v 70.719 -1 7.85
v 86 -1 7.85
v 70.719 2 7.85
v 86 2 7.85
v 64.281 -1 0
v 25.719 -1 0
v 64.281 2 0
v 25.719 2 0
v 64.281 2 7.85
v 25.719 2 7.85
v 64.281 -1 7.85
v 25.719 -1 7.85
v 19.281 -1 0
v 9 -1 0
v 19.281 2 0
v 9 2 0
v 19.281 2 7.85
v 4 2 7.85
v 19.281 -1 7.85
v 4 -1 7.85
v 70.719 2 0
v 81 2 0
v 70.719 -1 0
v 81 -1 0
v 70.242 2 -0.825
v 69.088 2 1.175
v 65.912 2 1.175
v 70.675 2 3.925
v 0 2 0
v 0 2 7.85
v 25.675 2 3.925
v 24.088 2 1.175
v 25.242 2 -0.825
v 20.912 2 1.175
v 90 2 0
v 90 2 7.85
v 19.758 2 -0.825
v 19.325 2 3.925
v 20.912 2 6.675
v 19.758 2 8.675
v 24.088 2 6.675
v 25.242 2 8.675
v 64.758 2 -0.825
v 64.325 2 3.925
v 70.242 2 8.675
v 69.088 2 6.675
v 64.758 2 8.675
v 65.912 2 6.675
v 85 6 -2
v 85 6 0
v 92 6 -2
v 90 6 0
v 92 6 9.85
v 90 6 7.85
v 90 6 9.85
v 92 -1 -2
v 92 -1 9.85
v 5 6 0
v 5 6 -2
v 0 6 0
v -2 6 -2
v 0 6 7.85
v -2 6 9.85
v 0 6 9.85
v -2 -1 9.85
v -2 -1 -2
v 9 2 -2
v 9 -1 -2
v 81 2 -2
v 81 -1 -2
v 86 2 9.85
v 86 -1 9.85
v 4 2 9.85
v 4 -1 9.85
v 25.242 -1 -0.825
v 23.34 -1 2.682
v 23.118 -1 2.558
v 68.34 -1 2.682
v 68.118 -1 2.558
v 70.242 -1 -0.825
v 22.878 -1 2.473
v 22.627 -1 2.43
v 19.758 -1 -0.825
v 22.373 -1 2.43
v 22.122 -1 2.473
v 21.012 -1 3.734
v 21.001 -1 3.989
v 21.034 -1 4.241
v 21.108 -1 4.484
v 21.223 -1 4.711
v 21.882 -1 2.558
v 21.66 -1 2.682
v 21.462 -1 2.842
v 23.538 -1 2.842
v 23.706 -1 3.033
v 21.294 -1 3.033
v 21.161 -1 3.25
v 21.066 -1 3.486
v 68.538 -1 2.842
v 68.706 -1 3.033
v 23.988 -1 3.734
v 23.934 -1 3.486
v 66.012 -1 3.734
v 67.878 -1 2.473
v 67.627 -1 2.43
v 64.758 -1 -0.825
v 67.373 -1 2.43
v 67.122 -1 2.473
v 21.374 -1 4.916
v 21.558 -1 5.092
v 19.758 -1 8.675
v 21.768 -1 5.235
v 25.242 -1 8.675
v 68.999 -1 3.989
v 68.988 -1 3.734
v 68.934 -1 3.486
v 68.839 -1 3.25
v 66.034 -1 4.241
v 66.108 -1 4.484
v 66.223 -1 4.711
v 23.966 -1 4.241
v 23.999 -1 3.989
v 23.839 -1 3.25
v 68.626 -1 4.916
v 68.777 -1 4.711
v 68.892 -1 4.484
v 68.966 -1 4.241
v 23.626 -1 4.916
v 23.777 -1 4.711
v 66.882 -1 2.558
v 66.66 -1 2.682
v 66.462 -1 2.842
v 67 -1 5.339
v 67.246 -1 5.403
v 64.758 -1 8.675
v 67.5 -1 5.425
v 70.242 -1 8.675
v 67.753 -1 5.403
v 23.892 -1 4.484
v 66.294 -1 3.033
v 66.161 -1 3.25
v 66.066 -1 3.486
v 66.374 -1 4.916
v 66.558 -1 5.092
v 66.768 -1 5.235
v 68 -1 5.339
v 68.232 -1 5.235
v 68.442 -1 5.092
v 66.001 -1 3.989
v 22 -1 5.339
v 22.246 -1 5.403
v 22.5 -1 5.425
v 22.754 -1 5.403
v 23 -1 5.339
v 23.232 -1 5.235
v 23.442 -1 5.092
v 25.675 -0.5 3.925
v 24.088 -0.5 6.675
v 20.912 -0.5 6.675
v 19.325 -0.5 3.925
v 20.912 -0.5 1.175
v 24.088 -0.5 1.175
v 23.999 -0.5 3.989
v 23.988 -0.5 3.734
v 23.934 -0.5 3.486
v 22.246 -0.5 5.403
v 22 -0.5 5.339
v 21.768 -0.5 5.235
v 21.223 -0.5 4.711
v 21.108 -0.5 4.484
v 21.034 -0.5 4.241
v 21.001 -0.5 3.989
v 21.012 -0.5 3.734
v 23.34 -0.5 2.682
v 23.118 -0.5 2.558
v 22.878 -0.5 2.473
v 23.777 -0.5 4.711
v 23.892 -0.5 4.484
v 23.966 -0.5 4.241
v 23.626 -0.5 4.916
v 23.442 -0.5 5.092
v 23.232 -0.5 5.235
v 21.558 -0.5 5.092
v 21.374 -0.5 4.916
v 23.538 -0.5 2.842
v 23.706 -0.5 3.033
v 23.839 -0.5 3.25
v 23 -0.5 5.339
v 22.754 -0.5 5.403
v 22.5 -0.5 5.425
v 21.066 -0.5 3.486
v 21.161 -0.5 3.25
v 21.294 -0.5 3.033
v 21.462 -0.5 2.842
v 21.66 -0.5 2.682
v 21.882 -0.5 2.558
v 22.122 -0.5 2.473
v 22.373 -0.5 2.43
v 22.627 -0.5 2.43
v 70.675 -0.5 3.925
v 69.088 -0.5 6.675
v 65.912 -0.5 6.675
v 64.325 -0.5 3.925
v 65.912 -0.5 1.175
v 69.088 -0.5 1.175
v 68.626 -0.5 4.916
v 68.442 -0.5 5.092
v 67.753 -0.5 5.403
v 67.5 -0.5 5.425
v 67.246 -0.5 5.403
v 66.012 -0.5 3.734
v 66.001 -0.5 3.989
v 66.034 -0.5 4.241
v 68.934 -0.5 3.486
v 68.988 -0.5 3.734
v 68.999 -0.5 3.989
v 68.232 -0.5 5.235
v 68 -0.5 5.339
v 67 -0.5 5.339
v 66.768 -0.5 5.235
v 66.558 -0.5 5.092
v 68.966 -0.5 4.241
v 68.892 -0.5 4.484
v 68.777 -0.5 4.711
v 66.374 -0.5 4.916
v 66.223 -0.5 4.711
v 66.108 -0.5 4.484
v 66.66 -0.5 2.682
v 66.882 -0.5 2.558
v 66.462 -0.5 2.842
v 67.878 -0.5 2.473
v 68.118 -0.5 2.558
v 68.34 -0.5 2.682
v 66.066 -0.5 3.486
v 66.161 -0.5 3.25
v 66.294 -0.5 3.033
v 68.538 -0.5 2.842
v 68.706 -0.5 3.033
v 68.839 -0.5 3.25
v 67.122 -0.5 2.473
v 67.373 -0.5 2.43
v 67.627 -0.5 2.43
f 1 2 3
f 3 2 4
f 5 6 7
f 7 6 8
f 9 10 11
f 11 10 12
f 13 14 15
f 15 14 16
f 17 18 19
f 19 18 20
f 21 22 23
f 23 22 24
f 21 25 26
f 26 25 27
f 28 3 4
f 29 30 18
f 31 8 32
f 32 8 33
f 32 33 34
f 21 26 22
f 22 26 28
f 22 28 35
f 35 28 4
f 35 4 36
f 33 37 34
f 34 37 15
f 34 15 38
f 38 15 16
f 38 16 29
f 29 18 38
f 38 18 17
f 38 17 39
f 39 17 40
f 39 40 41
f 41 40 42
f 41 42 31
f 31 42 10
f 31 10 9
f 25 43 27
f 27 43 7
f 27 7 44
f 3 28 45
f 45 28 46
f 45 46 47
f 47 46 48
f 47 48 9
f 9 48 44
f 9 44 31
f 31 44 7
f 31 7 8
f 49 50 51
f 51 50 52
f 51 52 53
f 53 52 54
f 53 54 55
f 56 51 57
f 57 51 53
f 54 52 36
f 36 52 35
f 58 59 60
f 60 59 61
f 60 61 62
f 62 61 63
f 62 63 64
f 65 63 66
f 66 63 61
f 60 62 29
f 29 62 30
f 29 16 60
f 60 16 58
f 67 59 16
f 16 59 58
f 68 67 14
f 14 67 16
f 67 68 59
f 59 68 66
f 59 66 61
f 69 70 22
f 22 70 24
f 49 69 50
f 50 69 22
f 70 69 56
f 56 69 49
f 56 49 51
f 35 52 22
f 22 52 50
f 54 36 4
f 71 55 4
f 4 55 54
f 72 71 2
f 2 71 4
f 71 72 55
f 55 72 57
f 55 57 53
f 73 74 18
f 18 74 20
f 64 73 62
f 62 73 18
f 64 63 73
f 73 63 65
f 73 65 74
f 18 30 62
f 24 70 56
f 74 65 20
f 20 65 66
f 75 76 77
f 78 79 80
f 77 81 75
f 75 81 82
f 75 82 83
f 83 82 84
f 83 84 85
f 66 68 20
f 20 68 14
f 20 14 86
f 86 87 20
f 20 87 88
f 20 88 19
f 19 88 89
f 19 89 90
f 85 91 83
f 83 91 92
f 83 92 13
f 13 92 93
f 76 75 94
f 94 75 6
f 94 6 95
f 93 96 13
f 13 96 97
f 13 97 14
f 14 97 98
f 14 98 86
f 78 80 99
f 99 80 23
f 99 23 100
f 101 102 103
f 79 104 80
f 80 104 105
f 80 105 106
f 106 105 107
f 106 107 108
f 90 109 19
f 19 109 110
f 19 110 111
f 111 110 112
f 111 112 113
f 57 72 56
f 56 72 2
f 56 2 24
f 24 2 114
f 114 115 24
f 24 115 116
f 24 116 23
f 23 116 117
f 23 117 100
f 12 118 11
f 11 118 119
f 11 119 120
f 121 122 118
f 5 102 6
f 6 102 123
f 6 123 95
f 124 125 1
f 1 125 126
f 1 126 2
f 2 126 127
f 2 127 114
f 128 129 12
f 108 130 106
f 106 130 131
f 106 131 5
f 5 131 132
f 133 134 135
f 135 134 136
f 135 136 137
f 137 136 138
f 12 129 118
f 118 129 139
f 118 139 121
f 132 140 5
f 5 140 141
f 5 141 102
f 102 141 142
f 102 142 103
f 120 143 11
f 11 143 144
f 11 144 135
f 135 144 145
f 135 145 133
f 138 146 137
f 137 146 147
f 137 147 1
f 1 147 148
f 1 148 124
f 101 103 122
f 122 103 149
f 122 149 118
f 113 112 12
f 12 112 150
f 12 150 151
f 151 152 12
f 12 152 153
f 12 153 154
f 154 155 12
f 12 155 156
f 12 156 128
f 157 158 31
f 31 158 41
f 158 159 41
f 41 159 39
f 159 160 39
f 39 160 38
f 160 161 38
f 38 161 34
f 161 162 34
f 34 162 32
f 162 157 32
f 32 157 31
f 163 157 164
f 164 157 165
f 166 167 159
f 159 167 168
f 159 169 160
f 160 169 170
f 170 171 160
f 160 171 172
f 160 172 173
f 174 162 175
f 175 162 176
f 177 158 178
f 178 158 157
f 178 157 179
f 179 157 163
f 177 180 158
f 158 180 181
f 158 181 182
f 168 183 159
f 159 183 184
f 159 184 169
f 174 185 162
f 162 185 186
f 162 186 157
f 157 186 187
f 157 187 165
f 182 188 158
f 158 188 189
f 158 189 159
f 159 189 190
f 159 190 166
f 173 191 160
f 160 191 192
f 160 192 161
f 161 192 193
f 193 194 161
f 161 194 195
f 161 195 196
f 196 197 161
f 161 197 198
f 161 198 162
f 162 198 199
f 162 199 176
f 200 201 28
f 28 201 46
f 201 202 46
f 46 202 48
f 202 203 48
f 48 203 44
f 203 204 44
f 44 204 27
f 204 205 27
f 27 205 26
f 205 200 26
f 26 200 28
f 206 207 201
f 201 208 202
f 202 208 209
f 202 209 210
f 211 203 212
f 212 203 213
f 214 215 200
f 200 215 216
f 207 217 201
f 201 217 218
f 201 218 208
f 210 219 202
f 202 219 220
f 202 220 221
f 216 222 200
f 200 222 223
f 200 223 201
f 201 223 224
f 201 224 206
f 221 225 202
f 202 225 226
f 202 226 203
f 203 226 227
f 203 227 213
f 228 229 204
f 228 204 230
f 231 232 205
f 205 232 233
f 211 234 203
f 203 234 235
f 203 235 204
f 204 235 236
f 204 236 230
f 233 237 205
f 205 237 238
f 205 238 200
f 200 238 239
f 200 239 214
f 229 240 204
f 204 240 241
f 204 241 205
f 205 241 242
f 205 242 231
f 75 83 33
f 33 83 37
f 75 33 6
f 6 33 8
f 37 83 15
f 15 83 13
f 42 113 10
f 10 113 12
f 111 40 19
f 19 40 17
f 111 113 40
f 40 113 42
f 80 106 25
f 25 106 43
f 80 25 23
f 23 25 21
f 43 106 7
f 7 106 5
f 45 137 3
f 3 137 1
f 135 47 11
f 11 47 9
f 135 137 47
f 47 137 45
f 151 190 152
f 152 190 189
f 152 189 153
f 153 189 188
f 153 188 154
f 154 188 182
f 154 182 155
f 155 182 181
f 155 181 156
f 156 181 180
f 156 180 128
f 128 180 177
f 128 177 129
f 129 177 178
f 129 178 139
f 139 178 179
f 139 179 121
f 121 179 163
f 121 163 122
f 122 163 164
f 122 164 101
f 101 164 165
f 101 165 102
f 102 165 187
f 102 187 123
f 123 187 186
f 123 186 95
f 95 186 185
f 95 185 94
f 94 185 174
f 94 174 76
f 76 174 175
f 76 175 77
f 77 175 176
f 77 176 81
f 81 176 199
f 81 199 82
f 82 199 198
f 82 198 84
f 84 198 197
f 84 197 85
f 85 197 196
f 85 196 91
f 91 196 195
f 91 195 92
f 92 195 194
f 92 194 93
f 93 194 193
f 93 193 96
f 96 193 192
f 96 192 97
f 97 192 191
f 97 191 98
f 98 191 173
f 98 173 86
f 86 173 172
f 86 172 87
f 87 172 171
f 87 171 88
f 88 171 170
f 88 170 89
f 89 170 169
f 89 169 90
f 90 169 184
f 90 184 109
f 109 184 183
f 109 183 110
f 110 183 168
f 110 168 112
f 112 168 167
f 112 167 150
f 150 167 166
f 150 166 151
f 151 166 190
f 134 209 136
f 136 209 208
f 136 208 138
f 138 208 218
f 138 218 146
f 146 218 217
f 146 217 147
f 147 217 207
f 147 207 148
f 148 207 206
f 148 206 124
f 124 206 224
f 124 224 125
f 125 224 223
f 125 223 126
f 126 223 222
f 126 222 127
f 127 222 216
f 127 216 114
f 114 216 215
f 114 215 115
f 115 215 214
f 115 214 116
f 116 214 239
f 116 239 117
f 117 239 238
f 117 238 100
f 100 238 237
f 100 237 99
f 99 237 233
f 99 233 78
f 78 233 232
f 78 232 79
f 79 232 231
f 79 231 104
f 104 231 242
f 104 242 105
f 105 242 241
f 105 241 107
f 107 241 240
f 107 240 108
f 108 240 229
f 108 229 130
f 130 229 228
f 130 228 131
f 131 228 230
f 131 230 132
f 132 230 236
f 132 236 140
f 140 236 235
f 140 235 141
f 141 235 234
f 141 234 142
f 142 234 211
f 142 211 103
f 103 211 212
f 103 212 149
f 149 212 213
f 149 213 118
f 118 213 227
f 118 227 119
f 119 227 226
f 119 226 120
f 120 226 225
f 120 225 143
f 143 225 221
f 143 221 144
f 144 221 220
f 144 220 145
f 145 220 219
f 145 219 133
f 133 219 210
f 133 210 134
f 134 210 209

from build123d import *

# Parameters (mm, degrees)
SKETCH_1_W          = 90
SKETCH_1_H          = 7.85
EXTRUDE_1_DEPTH     = 2
SKETCH_2_W          = 7.85
SKETCH_2_H          = 6
EXTRUDE_2_DEPTH     = 2
SKETCH_3_W          = 7.85
SKETCH_3_H          = 6
EXTRUDE_3_DEPTH     = 2
EXTRUDE_4_DEPTH     = 2
EXTRUDE_5_DEPTH     = 2
EXTRUDE_8_DEPTH     = 1
CUT_EXTRUDE_1_DEPTH = 2.5
EXTRUDE_9_DEPTH     = 3
SKETCH_15_R         = 1.5
CUT_EXTRUDE_2_DEPTH = 3
SKETCH_16_R         = 1.5
CUT_EXTRUDE_3_DEPTH = 3


with BuildPart() as part:
    # 草图1 → 凸台-拉伸1 (new body)
    with BuildSketch(Plane(origin=(0, 0, 0), x_dir=(1, 0, 0), z_dir=(0, 1, 0))):
        with Locations((45, -3.925)):
            Rectangle(SKETCH_1_W, SKETCH_1_H)
    extrude(amount=EXTRUDE_1_DEPTH)

    # 草图2 → 凸台-拉伸2 (add)
    with BuildSketch(Plane(origin=(90, 0, 0), x_dir=(0, 0, -1), z_dir=(1, 0, 0))):
        with Locations((-3.925, 3)):
            Rectangle(SKETCH_2_W, SKETCH_2_H)
    extrude(amount=EXTRUDE_2_DEPTH)

    # 草图3 → 凸台-拉伸3 (add)
    with BuildSketch(Plane.ZY):
        with Locations((3.925, 3)):
            Rectangle(SKETCH_3_W, SKETCH_3_H)
    extrude(amount=EXTRUDE_3_DEPTH)

    # 草图4 → 凸台-拉伸4 (add)
    with BuildSketch(Plane(origin=(0, 0, 0), x_dir=(-1, 0, 0), z_dir=(0, 0, -1))):
        Polygon((2, 0), (2, 6), (0, 6), (-5, 6), (-9, 2), (-9, 0), align=None)
        Polygon((-92, 0), (-92, 6), (-90, 6), (-85, 6), (-81, 2), (-81, 0), align=None)
    extrude(amount=EXTRUDE_4_DEPTH)

    # 草图5 → 凸台-拉伸5 (add)
    with BuildSketch(Plane.XY.offset(7.85)):
        Polygon((92, 0), (92, 6), (90, 6), (86, 2), (86, 0), align=None)
        Polygon((-2, 0), (-2, 6), (0, 6), (4, 2), (4, 0), align=None)
    extrude(amount=EXTRUDE_5_DEPTH)

    # 草图10 → 凸台-拉伸8 (add)
    with BuildSketch(Plane.XZ):
        Polygon((-2, -2), (-2, 9.85), (4, 9.85), (4, 7.85), (86, 7.85), (86, 9.85), (92, 9.85), (92, -2), (81, -2), (81, 0), (9, 0), (9, -2), align=None)
    extrude(amount=EXTRUDE_8_DEPTH)

    # 草图12 → 切除-拉伸1 (cut)
    with BuildSketch(Plane(origin=(0, 2, 0), x_dir=(1, 0, 0), z_dir=(0, 1, 0))):
        Polygon((25.675426481, -3.925), (24.08771324, -1.175), (20.91228676, -1.175), (19.324573519, -3.925), (20.91228676, -6.675), (24.08771324, -6.675), align=None)
        Polygon((70.675426481, -3.925), (69.08771324, -1.175), (65.91228676, -1.175), (64.324573519, -3.925), (65.91228676, -6.675), (69.08771324, -6.675), align=None)
    extrude(amount=-CUT_EXTRUDE_1_DEPTH, mode=Mode.SUBTRACT)

    # 草图13 → 凸台-拉伸9 (add)
    with BuildSketch(Plane(origin=(0, 2, 0), x_dir=(1, 0, 0), z_dir=(0, 1, 0))):
        Polygon((27.984827557, -3.925), (25.242413779, 0.825), (19.757586221, 0.825), (17.015172443, -3.925), (19.757586221, -8.675), (25.242413779, -8.675), align=None)
        Polygon((24.08771324, -6.675), (25.675426481, -3.925), (24.08771324, -1.175), (20.91228676, -1.175), (19.324573519, -3.925), (20.91228676, -6.675), align=None, mode=Mode.SUBTRACT)
        Polygon((72.984827557, -3.925), (70.242413779, 0.825), (64.757586221, 0.825), (62.015172443, -3.925), (64.757586221, -8.675), (70.242413779, -8.675), align=None)
        Polygon((69.08771324, -6.675), (70.675426481, -3.925), (69.08771324, -1.175), (65.91228676, -1.175), (64.324573519, -3.925), (65.91228676, -6.675), align=None, mode=Mode.SUBTRACT)
    extrude(amount=-EXTRUDE_9_DEPTH)

    # 草图15 → 切除-拉伸2 (cut)
    with BuildSketch(Plane(origin=(0, -0.5, 0), x_dir=(1, 0, 0), z_dir=(0, 1, 0))):
        with Locations((22.5, -3.925)):
            Circle(SKETCH_15_R)
    extrude(amount=-CUT_EXTRUDE_2_DEPTH, mode=Mode.SUBTRACT)

    # 草图16 → 切除-拉伸3 (cut)
    with BuildSketch(Plane(origin=(0, -0.5, 0), x_dir=(1, 0, 0), z_dir=(0, 1, 0))):
        with Locations((67.5, -3.925)):
            Circle(SKETCH_16_R)
    extrude(amount=-CUT_EXTRUDE_3_DEPTH, mode=Mode.SUBTRACT)


solid = part.part
